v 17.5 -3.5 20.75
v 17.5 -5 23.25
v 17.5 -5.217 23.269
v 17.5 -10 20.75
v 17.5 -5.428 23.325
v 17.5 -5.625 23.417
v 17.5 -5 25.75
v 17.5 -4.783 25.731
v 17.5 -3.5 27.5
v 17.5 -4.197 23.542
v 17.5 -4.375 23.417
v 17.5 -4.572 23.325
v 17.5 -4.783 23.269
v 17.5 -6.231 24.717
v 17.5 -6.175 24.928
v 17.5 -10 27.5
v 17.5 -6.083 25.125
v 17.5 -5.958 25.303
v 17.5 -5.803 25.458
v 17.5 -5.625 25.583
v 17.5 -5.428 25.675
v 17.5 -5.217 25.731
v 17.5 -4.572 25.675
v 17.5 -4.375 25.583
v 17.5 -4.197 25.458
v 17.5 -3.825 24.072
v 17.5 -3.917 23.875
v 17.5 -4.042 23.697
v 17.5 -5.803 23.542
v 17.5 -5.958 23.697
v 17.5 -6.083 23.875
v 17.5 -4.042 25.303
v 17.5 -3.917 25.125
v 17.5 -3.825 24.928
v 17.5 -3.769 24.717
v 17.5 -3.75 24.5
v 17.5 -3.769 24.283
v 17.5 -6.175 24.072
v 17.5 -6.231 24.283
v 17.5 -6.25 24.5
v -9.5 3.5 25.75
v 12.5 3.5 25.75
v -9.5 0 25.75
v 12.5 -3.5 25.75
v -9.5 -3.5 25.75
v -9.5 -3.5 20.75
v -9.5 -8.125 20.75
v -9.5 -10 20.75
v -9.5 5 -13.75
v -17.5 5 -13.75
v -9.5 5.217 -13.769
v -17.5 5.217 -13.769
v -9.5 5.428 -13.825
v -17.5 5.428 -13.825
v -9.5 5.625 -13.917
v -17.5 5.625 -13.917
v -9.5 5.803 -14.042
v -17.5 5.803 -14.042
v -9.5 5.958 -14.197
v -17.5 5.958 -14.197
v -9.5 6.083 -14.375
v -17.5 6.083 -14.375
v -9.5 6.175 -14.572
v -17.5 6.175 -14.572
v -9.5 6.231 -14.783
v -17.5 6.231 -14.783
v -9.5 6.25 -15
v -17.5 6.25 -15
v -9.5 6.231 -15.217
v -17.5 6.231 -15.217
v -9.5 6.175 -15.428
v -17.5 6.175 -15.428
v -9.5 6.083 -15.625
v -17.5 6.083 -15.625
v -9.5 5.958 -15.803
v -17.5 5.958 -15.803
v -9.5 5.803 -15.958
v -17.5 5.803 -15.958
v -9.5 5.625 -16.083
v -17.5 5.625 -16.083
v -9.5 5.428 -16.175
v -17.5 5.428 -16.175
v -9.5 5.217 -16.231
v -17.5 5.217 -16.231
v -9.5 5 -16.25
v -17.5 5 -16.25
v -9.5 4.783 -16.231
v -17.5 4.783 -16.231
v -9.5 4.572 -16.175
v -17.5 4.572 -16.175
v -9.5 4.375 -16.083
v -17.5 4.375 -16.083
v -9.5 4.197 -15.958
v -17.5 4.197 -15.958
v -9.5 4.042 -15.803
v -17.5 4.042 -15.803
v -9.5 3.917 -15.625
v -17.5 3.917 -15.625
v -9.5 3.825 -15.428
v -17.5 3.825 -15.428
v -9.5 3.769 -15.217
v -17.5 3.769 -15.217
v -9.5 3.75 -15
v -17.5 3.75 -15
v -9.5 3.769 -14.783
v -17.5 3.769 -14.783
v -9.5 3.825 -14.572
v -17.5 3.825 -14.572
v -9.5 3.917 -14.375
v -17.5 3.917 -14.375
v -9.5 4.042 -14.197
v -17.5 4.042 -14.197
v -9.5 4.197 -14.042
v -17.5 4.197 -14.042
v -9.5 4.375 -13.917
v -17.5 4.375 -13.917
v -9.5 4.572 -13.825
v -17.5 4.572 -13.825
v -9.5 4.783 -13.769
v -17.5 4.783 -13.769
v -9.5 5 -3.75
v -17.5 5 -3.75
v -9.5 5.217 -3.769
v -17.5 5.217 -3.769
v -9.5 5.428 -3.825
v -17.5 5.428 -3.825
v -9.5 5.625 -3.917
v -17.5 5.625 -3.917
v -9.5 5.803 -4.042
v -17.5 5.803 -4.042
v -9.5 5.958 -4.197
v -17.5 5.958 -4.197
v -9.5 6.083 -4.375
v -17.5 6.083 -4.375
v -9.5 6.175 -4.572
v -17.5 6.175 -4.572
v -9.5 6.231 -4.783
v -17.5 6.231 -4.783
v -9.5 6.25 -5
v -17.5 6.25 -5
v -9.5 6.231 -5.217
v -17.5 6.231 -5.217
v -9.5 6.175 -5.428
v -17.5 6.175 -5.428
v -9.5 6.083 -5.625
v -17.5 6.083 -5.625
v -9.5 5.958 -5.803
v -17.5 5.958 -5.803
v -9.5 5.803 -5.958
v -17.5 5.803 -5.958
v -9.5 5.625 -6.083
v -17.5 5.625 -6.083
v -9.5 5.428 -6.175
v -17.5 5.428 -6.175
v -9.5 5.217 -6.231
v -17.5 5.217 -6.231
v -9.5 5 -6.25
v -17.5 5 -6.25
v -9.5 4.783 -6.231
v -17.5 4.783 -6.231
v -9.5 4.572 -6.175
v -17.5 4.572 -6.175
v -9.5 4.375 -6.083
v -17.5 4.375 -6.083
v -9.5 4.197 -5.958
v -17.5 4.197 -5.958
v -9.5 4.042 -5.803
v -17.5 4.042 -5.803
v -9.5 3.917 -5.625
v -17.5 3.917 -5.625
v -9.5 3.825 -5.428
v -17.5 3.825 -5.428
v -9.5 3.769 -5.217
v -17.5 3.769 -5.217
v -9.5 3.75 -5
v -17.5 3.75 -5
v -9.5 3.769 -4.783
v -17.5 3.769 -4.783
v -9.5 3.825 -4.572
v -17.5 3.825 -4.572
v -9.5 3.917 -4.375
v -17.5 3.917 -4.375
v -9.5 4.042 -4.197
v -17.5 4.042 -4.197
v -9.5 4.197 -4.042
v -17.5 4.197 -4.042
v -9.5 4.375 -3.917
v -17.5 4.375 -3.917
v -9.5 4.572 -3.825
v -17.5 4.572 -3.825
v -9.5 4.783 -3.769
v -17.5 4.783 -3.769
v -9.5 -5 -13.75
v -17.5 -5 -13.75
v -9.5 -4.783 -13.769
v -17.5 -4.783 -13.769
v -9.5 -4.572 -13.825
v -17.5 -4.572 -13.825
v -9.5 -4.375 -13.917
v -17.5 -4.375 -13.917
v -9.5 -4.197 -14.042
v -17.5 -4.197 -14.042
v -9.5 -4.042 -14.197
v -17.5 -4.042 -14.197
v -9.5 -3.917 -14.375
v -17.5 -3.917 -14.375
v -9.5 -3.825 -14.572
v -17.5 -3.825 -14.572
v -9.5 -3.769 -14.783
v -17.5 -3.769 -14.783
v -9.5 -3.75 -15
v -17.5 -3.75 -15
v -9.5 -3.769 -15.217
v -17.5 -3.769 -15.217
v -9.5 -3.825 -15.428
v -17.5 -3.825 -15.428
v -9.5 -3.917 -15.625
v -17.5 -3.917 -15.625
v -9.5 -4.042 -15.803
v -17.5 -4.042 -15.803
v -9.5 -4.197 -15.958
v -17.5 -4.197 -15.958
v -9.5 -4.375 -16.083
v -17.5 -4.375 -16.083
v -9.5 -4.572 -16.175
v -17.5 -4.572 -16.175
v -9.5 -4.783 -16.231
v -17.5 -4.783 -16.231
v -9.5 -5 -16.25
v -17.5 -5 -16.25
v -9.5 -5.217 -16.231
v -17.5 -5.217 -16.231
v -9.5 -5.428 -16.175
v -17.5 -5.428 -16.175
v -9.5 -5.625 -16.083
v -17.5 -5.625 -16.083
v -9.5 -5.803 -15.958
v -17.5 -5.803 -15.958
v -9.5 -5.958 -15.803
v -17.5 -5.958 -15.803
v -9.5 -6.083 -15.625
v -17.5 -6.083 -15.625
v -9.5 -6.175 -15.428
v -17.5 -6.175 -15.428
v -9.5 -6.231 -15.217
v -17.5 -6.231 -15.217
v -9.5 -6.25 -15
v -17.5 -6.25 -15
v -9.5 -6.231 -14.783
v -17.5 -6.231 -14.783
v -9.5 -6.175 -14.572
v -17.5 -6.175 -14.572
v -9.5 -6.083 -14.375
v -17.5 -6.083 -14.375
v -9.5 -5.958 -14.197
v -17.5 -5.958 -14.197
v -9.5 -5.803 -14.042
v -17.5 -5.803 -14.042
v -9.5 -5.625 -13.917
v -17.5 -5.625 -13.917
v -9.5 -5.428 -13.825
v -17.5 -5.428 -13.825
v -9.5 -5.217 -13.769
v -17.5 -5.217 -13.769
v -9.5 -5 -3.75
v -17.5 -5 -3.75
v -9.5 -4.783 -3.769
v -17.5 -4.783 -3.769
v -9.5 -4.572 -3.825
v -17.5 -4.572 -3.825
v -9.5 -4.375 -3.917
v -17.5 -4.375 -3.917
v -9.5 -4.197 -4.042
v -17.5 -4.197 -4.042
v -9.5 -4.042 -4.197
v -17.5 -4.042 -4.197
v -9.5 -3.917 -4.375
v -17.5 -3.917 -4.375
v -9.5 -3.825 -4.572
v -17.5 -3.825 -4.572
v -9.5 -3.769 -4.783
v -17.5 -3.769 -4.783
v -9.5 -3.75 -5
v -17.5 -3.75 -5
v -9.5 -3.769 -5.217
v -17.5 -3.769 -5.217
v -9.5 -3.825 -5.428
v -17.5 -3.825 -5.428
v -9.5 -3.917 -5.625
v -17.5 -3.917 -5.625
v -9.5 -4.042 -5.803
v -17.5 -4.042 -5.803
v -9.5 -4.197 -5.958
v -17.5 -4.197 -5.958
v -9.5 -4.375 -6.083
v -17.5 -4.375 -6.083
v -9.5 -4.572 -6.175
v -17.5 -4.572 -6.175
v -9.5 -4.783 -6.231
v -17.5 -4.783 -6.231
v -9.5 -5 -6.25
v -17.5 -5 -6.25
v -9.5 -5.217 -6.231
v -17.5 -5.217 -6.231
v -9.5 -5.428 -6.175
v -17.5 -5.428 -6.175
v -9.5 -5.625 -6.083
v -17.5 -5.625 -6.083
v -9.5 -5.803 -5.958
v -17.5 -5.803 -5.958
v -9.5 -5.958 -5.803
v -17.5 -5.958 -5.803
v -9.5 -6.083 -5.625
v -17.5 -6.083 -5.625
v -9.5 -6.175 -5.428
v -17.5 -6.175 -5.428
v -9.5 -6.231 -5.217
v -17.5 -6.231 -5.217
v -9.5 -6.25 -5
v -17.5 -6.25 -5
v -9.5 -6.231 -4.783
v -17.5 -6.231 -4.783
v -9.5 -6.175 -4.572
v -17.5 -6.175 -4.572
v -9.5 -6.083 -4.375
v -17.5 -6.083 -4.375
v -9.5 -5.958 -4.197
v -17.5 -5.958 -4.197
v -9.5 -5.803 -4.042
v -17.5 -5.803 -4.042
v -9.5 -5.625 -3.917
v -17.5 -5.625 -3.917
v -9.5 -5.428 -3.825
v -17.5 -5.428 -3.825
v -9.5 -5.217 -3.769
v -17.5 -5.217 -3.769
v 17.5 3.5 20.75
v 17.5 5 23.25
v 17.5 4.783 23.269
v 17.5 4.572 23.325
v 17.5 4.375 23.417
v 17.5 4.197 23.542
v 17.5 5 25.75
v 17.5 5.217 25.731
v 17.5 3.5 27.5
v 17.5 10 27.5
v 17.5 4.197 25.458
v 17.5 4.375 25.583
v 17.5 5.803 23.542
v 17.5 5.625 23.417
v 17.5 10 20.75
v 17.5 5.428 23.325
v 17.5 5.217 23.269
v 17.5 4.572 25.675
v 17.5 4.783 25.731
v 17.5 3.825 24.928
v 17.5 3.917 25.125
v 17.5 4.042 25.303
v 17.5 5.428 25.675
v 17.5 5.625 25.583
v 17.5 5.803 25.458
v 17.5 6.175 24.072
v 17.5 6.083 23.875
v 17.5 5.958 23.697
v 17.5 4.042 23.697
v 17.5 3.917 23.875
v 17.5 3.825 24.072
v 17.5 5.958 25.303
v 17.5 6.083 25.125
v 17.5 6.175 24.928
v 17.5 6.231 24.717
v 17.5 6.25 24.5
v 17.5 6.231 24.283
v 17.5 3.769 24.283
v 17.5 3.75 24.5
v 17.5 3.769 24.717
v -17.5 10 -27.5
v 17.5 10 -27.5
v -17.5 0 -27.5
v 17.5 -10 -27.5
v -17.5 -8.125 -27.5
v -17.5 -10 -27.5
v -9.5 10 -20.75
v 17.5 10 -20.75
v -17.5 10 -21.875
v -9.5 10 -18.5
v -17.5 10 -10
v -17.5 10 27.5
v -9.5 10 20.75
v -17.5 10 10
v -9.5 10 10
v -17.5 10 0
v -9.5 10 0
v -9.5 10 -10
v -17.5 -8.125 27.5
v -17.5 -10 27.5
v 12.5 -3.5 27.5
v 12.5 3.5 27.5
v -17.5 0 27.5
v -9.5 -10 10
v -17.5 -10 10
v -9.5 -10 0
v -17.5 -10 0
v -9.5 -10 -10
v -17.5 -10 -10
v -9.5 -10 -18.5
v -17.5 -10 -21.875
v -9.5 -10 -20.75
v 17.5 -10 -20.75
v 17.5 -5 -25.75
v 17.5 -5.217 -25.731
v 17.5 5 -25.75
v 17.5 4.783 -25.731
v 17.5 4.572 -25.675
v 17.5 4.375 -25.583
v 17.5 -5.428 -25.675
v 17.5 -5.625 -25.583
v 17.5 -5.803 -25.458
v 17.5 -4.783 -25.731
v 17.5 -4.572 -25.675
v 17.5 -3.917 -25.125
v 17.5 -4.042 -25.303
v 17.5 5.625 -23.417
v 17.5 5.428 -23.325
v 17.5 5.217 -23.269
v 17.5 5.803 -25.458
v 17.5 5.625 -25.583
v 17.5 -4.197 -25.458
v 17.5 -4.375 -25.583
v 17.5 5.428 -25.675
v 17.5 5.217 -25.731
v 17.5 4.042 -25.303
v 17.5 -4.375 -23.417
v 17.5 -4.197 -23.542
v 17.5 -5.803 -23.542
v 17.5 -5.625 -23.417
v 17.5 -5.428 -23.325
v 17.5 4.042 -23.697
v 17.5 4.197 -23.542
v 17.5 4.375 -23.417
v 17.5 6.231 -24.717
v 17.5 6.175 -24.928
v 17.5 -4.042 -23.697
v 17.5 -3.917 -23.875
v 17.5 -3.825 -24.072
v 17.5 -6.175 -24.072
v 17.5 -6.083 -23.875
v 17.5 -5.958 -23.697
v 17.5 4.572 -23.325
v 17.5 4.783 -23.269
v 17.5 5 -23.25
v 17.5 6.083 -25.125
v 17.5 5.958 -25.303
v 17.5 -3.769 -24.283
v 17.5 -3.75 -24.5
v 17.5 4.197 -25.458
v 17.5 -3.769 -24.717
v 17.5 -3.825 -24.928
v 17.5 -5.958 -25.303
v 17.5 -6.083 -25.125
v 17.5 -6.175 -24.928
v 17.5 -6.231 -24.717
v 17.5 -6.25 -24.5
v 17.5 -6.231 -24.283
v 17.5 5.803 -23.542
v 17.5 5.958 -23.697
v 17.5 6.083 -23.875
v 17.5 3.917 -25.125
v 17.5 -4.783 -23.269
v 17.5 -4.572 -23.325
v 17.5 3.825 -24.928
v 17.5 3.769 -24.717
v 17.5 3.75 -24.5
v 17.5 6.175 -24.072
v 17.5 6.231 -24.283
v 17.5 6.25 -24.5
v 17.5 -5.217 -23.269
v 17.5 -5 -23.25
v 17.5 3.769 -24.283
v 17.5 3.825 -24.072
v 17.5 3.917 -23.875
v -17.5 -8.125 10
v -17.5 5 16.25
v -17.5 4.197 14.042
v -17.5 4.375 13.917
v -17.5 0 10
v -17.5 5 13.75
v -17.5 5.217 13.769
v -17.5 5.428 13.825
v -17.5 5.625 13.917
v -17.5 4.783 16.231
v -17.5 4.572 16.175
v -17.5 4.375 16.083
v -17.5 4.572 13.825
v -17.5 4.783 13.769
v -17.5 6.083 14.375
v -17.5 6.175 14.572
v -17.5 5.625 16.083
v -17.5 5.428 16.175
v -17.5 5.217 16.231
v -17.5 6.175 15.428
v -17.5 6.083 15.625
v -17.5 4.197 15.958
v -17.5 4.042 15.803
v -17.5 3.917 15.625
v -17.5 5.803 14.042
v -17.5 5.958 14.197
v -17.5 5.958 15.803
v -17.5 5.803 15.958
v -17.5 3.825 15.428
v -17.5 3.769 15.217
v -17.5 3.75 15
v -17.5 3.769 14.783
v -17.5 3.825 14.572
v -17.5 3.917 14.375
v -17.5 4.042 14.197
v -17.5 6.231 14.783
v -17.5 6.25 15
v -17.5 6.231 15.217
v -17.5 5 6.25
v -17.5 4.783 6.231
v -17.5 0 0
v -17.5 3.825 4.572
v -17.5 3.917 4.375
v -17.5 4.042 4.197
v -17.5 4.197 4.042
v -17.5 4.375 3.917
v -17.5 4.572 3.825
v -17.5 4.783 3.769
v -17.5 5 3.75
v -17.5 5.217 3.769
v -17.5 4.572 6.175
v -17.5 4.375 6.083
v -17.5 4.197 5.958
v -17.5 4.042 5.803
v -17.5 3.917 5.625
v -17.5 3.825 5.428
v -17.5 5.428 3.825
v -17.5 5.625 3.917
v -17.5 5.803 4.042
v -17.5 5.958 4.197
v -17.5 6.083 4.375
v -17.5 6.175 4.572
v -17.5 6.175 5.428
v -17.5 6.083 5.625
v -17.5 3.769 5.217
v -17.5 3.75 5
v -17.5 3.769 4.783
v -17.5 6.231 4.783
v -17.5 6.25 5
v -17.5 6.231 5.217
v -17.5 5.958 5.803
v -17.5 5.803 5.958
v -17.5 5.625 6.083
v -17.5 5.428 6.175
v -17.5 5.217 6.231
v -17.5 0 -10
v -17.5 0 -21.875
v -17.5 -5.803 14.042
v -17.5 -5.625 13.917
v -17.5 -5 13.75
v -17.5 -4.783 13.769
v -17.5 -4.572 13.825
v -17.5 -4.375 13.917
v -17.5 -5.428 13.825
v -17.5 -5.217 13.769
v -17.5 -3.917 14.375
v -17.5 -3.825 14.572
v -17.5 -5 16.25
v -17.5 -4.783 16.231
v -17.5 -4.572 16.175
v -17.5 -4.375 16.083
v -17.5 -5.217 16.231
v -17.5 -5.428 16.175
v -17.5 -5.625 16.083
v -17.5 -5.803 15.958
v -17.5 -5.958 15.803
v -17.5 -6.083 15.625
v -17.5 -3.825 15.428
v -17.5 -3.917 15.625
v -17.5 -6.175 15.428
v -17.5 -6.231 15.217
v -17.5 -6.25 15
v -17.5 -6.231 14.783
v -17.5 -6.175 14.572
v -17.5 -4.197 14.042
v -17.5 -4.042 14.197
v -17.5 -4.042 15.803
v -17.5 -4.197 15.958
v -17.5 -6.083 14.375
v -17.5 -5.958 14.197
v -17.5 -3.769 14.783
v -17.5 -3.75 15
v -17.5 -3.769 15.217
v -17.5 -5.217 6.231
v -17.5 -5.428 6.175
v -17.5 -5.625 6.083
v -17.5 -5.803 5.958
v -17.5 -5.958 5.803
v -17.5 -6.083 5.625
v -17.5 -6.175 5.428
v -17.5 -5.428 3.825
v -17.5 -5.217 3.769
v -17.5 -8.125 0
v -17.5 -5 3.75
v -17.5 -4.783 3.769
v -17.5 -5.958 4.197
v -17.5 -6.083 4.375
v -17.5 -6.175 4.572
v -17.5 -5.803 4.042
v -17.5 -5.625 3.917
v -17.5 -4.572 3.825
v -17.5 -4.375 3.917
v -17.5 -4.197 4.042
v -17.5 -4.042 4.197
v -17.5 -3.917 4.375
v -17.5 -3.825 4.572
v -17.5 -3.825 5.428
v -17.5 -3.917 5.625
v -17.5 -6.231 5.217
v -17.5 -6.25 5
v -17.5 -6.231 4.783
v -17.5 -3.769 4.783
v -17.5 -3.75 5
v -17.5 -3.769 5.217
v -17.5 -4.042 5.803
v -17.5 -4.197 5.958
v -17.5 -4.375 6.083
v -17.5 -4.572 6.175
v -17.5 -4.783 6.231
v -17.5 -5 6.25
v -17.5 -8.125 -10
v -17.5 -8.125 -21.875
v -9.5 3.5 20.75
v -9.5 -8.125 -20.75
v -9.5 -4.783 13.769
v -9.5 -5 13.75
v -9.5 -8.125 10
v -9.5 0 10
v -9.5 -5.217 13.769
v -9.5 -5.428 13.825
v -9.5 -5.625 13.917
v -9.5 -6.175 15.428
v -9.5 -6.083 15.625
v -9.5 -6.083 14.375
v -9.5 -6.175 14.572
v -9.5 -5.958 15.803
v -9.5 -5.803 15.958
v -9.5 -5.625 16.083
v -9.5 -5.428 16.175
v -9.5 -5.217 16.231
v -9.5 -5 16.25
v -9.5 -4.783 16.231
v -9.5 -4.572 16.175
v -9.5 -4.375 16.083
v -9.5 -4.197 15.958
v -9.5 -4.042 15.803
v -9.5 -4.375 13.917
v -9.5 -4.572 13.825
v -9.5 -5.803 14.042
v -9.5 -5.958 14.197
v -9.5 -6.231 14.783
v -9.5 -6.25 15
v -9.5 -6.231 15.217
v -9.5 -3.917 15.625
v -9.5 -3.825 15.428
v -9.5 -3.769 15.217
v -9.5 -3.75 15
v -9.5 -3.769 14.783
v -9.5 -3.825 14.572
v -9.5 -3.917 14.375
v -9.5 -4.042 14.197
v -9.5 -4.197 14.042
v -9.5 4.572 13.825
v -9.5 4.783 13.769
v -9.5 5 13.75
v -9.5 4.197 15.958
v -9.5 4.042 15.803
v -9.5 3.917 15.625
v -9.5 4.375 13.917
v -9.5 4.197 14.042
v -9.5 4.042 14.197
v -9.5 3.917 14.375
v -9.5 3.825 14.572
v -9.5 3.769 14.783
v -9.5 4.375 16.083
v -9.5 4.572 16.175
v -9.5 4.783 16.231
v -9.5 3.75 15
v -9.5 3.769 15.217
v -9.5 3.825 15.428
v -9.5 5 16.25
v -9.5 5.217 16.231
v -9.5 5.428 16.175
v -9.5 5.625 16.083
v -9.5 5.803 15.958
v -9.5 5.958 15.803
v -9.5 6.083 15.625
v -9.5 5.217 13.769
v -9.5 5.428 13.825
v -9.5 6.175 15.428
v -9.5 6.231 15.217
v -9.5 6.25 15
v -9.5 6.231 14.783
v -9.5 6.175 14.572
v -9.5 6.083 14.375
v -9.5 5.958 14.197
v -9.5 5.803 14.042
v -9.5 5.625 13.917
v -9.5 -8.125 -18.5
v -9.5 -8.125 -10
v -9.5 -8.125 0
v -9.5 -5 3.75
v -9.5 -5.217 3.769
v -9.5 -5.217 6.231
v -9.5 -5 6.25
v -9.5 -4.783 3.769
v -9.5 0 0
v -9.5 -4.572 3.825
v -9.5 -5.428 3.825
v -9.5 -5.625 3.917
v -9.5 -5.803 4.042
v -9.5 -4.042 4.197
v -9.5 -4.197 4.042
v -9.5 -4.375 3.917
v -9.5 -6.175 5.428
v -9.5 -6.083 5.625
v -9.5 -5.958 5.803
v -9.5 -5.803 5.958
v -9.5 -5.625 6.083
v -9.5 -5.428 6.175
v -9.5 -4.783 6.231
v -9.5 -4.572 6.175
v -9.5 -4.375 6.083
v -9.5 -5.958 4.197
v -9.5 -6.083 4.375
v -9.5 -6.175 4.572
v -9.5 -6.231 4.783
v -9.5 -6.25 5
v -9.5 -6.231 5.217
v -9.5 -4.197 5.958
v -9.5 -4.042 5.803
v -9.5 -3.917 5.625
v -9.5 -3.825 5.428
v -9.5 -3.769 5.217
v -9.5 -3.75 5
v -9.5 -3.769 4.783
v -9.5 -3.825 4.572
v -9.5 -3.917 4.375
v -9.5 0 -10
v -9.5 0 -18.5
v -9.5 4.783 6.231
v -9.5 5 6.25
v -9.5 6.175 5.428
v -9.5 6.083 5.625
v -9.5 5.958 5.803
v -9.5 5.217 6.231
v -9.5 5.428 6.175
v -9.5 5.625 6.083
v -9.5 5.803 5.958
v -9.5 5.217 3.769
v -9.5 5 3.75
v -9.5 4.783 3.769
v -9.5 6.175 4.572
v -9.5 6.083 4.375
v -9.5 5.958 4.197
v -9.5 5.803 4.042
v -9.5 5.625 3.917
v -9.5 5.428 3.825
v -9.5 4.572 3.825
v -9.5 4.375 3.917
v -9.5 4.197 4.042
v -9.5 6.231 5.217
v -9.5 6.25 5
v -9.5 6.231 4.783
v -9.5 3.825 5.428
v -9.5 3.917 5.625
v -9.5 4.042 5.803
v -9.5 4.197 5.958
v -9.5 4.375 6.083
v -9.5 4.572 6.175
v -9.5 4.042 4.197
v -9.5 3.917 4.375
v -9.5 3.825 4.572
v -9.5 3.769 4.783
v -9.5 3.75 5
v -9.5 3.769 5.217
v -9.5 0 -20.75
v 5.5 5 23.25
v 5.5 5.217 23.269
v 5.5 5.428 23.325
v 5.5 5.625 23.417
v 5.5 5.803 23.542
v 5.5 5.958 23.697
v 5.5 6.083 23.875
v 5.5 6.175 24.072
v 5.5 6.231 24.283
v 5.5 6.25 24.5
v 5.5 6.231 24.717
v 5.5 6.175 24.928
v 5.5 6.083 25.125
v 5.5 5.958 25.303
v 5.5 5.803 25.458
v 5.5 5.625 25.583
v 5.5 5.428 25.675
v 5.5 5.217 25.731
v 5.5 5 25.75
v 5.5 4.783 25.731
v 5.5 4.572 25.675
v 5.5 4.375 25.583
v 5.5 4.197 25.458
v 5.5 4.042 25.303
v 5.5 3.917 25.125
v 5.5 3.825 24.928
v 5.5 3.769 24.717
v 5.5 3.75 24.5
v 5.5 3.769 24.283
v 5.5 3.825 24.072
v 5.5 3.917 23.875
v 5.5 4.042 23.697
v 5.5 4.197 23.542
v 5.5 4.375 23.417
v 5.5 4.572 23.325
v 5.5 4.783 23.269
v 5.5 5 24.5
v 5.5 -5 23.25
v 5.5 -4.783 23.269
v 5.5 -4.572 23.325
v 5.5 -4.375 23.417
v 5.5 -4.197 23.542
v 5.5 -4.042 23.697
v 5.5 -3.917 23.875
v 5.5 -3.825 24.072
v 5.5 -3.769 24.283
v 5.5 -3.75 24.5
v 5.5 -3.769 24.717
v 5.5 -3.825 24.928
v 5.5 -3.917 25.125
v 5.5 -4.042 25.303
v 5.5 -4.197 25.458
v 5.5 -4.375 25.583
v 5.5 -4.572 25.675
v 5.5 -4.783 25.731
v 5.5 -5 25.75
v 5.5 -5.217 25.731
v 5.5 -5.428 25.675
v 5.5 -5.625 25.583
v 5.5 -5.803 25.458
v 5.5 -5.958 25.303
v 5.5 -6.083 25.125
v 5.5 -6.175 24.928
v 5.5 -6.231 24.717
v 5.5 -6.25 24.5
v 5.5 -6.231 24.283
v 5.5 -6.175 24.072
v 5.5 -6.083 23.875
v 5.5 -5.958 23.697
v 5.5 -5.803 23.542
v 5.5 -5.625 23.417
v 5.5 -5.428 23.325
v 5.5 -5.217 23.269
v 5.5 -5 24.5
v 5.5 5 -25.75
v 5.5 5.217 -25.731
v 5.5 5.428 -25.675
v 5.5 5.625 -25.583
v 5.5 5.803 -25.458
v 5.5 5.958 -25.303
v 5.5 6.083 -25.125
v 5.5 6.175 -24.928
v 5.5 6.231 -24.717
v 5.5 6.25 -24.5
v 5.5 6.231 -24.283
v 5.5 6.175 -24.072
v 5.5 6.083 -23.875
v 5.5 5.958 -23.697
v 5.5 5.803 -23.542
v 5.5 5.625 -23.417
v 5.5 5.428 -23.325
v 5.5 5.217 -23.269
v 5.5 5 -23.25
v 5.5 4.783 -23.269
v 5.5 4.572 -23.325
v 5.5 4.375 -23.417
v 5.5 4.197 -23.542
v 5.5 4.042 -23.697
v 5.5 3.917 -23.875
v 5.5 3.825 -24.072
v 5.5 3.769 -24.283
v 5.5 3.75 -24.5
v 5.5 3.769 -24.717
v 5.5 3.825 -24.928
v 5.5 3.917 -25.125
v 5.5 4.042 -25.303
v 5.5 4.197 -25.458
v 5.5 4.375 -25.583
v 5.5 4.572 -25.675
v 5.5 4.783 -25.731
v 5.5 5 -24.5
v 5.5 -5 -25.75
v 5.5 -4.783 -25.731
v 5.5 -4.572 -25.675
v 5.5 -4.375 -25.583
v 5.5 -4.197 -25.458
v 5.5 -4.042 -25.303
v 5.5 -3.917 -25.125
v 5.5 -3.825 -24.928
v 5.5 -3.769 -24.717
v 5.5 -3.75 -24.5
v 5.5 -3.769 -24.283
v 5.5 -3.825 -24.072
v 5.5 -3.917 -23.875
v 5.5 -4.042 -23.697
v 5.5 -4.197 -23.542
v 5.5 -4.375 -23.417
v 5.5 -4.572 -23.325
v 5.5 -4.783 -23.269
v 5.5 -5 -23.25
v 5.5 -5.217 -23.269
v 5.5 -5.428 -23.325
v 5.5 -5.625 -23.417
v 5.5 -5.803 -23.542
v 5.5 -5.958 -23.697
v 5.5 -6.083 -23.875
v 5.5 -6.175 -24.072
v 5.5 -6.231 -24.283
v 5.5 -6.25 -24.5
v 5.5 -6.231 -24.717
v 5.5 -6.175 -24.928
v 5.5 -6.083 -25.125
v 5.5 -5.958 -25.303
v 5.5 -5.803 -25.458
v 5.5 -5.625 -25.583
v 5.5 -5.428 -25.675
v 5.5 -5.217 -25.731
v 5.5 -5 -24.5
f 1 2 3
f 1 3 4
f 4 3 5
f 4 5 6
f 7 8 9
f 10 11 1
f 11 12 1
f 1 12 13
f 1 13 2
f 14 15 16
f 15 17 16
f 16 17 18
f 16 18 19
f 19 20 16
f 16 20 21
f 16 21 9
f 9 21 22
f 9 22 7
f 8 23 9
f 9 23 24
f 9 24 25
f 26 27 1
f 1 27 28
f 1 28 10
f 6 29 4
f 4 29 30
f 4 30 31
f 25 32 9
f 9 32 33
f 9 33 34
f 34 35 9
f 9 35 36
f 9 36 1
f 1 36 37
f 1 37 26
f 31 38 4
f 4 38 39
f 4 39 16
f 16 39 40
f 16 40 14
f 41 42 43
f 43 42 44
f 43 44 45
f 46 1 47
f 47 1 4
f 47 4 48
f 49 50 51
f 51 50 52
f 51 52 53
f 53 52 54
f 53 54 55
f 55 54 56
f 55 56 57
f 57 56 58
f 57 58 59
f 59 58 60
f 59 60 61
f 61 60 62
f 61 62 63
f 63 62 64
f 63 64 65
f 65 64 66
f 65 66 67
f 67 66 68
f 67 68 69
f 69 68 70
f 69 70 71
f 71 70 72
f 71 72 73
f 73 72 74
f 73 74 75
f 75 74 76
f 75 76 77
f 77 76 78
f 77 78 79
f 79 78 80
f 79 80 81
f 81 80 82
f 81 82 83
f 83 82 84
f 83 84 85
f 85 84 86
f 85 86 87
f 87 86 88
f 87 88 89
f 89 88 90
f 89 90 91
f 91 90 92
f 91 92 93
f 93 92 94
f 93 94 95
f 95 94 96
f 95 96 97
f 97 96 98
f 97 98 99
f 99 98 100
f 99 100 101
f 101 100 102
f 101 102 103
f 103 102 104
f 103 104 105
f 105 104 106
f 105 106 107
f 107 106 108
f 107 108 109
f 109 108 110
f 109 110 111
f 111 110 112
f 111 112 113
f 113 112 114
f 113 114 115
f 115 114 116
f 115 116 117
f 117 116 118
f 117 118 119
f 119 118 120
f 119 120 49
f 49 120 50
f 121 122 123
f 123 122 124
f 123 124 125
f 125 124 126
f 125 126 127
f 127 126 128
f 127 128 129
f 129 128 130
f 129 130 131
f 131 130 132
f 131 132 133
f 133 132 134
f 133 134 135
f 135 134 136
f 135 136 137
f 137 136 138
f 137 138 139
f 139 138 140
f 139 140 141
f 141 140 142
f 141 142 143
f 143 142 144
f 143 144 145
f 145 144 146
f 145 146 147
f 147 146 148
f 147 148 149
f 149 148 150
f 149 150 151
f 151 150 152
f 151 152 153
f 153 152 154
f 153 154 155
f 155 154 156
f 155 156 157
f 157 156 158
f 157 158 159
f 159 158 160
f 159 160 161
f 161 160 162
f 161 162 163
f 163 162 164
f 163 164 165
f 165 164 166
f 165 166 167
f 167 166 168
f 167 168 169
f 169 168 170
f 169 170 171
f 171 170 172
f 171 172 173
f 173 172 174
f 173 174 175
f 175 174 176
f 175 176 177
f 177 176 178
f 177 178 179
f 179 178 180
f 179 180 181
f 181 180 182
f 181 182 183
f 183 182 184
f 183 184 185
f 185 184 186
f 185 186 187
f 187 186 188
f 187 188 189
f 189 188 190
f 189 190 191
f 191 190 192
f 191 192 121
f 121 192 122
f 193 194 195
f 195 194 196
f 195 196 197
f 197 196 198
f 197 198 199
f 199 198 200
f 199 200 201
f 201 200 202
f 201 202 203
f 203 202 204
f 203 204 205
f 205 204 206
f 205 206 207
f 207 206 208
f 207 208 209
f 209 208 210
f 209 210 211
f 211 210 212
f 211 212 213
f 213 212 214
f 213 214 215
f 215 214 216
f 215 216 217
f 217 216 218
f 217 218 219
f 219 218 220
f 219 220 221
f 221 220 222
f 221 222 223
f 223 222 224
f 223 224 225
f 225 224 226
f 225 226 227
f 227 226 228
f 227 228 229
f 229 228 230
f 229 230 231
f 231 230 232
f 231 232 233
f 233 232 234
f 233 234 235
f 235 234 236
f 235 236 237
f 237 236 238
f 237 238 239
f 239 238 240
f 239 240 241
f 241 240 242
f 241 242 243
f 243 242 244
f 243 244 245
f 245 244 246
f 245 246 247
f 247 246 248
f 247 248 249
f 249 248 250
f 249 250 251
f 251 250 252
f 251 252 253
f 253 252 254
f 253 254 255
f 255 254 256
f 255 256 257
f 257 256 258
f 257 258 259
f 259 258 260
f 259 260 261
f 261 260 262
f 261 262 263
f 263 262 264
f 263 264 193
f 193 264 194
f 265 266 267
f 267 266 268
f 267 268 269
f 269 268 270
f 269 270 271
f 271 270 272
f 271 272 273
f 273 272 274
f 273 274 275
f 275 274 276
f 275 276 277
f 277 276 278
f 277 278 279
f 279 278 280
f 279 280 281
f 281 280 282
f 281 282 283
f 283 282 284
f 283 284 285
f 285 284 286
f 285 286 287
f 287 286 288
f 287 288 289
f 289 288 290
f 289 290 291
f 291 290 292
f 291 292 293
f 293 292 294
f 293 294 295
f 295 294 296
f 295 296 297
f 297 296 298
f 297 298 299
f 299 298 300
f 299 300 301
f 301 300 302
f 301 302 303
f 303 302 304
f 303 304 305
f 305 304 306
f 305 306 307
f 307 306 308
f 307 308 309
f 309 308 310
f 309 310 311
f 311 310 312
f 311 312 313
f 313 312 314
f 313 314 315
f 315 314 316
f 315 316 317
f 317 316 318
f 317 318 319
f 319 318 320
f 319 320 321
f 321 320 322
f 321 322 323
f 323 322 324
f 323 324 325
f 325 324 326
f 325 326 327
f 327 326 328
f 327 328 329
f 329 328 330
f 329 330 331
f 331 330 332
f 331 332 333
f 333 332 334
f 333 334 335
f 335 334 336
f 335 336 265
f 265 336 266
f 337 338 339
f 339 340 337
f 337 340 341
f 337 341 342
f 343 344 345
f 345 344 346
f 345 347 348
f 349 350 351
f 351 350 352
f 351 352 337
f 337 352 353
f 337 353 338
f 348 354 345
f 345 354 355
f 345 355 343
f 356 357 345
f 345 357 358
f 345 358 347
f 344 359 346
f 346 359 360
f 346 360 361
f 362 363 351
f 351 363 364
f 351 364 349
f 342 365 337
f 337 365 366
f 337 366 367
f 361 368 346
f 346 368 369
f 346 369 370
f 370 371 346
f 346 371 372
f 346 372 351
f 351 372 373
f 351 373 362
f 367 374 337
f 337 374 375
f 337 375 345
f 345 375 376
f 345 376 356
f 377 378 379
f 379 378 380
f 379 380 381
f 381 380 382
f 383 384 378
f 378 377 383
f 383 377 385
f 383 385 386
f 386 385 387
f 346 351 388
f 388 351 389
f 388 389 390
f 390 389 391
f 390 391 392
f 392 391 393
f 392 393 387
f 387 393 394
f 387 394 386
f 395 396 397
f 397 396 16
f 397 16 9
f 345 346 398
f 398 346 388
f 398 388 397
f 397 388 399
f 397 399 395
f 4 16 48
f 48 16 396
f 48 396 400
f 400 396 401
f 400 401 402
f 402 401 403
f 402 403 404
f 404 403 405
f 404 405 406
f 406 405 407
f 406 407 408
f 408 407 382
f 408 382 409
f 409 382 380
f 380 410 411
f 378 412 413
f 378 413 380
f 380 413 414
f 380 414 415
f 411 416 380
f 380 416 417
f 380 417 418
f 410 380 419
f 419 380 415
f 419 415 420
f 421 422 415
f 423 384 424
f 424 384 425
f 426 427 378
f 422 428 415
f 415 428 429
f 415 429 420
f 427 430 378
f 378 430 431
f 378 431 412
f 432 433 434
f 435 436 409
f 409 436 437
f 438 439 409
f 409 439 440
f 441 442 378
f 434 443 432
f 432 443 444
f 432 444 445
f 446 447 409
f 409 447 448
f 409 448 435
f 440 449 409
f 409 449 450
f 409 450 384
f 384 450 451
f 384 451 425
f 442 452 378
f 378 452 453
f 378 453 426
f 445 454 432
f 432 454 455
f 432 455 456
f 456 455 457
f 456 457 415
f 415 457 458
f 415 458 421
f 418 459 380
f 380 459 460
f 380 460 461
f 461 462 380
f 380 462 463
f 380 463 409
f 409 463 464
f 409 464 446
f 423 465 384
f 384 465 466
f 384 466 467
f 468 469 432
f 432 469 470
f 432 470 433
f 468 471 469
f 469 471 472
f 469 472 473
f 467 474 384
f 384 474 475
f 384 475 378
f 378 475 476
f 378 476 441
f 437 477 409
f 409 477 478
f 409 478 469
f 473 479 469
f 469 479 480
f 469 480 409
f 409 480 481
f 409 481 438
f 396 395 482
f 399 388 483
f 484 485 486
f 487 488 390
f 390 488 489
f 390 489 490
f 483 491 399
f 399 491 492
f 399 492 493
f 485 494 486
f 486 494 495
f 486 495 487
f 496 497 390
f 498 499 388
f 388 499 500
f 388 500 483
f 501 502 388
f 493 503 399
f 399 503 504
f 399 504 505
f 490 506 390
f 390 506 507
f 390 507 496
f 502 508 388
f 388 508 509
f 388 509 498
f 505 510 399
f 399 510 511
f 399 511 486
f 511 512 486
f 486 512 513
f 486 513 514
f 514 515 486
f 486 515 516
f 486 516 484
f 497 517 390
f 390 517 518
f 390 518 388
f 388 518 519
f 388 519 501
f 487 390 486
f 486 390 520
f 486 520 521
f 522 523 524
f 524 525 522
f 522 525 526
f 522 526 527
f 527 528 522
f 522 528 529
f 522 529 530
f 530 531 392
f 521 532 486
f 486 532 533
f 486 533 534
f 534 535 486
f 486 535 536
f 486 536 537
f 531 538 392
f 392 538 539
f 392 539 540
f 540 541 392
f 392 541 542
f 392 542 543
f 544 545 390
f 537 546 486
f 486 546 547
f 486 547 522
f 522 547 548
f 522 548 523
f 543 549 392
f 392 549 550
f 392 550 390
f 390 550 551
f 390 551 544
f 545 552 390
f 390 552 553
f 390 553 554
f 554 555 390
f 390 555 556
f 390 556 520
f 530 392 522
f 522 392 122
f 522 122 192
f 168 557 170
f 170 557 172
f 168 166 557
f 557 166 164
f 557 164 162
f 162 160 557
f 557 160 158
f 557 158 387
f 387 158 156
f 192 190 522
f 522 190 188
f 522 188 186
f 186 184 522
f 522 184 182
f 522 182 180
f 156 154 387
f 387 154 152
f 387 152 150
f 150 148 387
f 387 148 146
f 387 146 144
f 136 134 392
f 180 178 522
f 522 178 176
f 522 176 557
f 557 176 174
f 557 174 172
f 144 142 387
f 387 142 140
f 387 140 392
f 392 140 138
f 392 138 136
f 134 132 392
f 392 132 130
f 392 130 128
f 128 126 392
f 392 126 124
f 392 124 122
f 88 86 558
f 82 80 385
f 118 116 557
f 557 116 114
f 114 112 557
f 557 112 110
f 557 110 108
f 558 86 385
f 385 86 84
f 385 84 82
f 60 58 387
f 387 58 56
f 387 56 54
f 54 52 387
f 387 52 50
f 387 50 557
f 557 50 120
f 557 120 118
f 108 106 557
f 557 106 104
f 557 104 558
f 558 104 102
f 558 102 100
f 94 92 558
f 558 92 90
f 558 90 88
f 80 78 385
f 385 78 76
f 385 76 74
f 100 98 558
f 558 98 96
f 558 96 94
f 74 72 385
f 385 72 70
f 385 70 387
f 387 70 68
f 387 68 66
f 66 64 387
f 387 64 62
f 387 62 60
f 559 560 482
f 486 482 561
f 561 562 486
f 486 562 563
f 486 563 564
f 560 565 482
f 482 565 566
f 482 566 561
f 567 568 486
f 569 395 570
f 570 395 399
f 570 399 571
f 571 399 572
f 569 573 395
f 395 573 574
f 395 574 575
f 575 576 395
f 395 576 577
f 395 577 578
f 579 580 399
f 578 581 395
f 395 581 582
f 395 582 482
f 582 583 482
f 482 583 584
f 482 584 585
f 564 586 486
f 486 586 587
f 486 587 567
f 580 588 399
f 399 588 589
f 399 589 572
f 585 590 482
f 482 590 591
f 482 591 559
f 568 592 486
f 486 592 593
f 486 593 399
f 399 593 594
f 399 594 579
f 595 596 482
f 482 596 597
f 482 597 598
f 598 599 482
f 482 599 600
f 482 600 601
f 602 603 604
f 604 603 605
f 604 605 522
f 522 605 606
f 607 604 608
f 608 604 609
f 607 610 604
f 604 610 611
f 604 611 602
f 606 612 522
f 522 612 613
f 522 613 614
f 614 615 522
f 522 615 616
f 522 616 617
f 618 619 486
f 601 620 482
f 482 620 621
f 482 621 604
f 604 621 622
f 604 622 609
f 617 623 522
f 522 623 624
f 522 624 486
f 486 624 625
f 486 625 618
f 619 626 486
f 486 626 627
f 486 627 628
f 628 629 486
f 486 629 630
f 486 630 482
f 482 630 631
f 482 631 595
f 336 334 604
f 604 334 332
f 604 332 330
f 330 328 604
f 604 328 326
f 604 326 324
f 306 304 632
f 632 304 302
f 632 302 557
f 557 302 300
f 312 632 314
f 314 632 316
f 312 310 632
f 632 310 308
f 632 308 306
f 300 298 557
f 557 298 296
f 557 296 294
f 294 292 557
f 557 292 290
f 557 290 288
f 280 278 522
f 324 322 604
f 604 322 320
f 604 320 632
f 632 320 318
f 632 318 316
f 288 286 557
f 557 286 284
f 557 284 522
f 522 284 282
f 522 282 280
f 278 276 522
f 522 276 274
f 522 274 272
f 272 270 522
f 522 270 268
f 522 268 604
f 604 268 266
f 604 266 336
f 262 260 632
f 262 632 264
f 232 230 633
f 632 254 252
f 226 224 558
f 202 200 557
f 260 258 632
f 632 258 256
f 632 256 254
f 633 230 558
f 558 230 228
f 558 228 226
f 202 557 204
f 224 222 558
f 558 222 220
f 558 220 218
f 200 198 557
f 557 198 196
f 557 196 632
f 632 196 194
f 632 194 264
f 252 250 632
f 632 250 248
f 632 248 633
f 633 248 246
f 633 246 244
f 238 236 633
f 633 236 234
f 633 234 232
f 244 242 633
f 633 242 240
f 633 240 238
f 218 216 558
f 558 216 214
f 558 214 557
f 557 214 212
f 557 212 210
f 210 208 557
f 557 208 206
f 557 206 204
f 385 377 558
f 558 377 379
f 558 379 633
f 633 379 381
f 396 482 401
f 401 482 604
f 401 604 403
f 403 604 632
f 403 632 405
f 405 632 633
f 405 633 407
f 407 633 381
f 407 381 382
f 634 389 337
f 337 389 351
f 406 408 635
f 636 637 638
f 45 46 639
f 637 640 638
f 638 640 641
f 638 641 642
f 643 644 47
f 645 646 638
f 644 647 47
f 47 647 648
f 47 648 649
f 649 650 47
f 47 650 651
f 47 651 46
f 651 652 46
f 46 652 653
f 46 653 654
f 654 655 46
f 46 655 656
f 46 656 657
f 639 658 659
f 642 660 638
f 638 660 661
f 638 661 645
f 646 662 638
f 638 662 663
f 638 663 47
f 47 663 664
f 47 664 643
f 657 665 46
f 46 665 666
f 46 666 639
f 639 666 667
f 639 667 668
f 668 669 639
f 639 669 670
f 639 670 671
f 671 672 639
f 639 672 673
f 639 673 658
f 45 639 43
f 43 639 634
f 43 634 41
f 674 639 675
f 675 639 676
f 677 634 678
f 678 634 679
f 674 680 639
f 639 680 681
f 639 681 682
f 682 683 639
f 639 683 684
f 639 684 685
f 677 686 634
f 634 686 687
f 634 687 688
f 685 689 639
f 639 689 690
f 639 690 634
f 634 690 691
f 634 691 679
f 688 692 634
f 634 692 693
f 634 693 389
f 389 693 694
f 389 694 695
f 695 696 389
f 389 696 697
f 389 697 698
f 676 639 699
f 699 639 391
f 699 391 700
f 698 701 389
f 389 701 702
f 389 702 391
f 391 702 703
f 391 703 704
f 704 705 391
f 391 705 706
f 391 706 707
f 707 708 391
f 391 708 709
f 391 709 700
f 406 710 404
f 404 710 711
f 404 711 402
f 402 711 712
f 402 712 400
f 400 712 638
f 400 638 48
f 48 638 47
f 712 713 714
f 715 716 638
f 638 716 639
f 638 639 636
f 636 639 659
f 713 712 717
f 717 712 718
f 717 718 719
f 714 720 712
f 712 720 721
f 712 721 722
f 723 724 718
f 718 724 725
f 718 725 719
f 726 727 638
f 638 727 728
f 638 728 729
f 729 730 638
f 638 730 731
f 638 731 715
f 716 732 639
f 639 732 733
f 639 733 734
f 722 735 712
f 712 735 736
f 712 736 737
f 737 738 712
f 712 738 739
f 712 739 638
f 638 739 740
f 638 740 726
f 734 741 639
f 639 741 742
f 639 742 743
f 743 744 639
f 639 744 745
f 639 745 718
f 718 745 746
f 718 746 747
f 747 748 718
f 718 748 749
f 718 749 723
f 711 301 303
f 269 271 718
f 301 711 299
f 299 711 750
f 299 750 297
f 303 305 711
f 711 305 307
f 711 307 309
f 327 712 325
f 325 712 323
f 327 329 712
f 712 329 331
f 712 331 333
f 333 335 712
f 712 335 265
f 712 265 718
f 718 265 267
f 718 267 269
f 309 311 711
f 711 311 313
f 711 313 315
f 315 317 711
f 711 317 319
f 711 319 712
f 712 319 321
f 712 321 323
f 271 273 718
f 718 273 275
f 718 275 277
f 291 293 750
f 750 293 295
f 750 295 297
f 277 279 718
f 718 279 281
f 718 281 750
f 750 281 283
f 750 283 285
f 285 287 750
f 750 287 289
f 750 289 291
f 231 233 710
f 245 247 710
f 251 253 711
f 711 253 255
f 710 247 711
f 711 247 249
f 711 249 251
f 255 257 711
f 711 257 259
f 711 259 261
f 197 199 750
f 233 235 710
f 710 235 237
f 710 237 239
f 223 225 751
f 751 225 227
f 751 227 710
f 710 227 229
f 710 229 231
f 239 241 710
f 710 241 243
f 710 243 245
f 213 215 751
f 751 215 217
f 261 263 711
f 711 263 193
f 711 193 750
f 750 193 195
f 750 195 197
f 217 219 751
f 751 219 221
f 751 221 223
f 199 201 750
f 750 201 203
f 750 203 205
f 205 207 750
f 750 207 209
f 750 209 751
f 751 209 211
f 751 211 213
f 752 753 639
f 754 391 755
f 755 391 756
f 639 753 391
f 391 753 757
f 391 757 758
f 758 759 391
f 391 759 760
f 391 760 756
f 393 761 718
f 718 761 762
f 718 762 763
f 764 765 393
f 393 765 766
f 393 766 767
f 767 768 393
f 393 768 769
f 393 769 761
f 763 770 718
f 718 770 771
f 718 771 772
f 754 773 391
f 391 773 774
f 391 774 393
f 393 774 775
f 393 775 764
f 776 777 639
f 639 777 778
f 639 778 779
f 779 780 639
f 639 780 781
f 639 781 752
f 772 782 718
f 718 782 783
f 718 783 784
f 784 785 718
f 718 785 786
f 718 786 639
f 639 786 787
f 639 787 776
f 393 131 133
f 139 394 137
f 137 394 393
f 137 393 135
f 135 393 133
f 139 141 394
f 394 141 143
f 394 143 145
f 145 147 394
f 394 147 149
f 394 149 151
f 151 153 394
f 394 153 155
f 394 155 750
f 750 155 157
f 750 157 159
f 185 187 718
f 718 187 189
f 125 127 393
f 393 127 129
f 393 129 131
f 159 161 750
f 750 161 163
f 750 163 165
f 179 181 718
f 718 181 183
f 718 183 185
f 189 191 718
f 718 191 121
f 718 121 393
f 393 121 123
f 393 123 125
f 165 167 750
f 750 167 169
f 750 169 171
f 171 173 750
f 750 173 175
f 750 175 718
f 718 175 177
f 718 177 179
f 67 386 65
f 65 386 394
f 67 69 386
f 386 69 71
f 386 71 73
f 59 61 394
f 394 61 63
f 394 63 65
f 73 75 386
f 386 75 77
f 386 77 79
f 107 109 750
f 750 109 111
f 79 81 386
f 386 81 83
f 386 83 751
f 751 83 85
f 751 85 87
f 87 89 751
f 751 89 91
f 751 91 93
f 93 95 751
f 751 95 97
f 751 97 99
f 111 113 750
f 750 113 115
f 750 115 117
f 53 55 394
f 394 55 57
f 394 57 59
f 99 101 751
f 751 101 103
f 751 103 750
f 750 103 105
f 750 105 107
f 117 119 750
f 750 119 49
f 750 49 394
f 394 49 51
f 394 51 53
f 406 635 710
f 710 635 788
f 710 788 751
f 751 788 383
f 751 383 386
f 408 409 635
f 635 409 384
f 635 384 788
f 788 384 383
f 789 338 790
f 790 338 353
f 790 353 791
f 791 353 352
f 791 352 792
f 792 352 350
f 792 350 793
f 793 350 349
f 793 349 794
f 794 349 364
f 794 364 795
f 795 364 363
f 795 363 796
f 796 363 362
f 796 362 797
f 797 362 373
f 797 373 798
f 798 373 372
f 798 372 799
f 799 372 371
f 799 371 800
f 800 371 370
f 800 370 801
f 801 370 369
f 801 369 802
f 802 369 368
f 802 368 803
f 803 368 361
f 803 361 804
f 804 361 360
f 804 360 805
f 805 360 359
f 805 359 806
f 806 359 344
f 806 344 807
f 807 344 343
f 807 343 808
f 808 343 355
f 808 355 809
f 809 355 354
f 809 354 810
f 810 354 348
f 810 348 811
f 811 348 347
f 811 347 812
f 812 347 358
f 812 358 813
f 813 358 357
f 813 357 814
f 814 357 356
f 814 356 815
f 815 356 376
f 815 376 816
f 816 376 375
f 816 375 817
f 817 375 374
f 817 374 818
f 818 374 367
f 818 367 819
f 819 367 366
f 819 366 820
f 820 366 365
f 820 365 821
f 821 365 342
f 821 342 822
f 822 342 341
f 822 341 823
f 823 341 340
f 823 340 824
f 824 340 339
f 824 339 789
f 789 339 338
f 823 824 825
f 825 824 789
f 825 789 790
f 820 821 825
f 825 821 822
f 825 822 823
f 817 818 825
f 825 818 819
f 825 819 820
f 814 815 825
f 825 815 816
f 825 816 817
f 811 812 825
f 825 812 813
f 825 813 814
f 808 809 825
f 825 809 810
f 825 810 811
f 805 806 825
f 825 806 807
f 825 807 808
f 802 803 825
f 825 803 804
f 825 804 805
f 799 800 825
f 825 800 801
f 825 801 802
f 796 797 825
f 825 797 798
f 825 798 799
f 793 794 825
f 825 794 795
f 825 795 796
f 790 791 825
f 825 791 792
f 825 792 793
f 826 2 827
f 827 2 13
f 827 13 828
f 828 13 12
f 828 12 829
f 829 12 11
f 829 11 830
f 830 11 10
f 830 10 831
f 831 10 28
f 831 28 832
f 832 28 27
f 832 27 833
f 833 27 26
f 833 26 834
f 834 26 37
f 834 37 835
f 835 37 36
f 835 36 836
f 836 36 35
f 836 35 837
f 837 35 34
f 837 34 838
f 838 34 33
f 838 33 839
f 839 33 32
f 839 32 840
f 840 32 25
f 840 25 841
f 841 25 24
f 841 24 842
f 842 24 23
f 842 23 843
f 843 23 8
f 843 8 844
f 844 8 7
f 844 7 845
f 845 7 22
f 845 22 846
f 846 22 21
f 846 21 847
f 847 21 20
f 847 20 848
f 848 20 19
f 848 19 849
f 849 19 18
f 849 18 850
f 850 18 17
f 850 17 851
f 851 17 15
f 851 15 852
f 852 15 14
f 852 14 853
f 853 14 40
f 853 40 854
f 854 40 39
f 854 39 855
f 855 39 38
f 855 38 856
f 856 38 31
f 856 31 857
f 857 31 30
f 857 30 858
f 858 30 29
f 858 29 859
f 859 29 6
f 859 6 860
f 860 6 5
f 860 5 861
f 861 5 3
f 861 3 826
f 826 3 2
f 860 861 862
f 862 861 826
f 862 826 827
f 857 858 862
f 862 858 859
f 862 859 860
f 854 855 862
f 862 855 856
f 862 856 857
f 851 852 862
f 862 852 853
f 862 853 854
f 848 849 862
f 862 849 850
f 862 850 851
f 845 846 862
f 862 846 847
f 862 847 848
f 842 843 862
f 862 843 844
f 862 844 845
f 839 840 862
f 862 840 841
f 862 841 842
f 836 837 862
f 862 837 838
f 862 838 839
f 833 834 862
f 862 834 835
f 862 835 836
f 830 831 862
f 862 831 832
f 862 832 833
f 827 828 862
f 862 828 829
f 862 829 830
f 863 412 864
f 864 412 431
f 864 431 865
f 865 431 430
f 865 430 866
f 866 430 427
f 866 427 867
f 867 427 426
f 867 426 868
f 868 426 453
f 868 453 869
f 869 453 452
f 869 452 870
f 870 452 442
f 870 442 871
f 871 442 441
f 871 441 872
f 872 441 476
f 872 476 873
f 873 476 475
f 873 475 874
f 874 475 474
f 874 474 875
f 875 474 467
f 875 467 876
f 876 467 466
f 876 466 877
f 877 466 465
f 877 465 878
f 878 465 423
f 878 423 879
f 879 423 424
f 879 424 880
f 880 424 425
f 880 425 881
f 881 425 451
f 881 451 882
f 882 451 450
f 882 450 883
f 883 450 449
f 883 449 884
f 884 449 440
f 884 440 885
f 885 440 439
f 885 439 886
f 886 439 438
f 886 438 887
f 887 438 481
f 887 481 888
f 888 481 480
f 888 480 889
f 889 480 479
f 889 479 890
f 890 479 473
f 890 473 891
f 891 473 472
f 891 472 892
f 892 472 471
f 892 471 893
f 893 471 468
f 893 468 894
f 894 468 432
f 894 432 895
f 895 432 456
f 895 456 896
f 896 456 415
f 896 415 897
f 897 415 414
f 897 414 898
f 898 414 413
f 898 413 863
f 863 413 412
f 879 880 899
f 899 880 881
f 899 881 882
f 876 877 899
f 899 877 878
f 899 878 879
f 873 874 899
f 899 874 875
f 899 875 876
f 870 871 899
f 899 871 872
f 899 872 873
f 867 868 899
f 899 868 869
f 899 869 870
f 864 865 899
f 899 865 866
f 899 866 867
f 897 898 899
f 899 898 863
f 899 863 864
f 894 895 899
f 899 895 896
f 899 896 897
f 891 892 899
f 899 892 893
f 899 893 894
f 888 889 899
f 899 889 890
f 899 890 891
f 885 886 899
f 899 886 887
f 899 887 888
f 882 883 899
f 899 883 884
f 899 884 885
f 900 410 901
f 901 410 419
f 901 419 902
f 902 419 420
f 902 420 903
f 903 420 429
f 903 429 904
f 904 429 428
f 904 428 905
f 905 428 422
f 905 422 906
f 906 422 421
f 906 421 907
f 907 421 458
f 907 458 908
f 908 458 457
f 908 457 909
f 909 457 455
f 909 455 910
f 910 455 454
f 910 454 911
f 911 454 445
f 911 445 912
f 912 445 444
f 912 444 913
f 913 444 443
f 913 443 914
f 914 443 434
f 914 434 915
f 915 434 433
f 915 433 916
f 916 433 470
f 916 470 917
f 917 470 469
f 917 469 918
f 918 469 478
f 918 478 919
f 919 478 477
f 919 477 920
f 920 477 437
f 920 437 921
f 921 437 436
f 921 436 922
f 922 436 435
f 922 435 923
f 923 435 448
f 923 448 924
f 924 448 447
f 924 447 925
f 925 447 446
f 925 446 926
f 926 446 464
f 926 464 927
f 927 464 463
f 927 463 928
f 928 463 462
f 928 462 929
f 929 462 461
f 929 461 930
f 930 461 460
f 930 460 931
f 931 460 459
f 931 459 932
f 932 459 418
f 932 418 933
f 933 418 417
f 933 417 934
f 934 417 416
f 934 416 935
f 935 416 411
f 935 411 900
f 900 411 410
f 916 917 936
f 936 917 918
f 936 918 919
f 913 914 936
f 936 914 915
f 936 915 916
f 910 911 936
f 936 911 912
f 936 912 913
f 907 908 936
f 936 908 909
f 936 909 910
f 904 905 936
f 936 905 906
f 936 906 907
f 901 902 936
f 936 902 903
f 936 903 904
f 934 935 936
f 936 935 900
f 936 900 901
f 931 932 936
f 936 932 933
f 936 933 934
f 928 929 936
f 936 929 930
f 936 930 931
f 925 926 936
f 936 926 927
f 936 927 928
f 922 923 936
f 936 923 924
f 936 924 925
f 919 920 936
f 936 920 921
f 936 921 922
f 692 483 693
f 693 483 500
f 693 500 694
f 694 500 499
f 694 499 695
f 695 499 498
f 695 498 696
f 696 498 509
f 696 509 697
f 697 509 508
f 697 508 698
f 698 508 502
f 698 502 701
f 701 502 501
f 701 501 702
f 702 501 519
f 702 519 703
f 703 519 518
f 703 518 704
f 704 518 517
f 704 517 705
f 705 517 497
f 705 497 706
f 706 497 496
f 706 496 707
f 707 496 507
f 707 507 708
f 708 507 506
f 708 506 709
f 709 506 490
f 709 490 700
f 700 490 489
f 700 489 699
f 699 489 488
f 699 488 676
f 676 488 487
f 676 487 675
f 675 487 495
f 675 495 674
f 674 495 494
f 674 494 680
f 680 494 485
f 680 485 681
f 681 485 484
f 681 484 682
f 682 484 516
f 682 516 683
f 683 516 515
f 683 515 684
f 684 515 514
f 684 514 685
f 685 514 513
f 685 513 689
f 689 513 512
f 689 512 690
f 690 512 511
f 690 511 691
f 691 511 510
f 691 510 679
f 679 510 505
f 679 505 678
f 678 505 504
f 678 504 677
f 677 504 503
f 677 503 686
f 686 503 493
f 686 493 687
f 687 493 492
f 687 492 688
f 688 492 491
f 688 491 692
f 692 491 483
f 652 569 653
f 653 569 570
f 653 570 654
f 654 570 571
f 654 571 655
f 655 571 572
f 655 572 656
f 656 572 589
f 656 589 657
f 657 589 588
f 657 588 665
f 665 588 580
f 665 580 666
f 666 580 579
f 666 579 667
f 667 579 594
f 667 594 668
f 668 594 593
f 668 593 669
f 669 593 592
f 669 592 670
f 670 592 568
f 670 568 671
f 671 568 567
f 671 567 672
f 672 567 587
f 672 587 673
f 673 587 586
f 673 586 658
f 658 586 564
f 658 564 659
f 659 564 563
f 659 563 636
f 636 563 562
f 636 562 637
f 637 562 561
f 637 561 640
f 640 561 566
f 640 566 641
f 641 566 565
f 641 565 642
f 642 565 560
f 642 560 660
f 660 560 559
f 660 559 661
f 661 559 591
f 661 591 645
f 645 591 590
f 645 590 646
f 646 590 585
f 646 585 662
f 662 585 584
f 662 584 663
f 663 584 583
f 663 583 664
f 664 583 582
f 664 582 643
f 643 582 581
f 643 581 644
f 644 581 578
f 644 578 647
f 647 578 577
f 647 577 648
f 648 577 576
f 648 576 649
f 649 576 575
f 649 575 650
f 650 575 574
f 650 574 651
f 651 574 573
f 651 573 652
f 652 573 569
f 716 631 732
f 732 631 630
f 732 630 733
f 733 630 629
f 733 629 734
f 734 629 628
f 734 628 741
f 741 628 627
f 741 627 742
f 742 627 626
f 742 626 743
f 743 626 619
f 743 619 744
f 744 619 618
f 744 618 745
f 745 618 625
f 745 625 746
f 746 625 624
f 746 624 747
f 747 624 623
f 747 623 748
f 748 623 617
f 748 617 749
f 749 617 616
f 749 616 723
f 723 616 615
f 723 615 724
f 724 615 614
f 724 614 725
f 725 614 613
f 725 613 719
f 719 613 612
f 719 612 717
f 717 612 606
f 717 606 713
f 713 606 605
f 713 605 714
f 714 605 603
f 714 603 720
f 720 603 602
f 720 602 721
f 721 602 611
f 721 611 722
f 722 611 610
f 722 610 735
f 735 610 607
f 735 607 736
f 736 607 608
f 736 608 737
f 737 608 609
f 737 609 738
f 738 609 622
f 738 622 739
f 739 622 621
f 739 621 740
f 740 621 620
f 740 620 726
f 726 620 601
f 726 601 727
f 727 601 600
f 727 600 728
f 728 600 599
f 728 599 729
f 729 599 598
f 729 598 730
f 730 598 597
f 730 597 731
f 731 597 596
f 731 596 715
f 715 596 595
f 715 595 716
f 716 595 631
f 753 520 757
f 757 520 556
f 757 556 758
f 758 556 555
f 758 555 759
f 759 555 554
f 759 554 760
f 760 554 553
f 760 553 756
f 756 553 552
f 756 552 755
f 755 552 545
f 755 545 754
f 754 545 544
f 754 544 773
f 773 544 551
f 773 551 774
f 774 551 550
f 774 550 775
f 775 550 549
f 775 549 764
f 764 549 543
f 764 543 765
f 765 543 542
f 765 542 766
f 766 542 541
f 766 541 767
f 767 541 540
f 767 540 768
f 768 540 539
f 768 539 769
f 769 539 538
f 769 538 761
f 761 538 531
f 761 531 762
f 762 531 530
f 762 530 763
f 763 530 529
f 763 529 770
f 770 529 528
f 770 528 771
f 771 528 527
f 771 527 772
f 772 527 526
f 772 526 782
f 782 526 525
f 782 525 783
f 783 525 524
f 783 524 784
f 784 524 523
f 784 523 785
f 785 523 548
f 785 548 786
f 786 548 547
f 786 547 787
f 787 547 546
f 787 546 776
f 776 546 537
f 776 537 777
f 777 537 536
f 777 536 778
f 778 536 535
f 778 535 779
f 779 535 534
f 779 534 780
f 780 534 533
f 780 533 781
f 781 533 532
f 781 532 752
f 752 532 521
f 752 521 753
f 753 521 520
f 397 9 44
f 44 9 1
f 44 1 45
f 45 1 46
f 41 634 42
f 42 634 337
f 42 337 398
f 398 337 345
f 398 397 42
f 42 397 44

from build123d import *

# Parameters (mm, degrees)
SKETCH1_W                 = 55
SKETCH1_H                 = 20
MAIN_DEPTH                = 17.5
SKETCH3_W                 = 27
SKETCH3_H                 = 41.5
CENTRALHOLEFORSERVO_DEPTH = 21
SKETCH4_R                 = 1.25
FIXHOLESERVO_DEPTH        = 12
SKETCH5_R                 = 1.25
BOTTOMFIXHOLE_DEPTH       = 12
LPATTERN1_COUNT           = 4
LPATTERN1_PITCH           = 10
SKETCH6_W                 = 5
SKETCH6_H                 = 7
CUT_EXTRUDE4_DEPTH        = 27
SKETCH7_W                 = 1.75
SKETCH7_H                 = 7
CUT_EXTRUDE5_DEPTH        = 5


with BuildPart() as part:
    # Sketch1 → Main (new body, symmetric)
    with BuildSketch(Plane(origin=(0, 0, 0), x_dir=(0, 0, -1), z_dir=(1, 0, 0))):
        Rectangle(SKETCH1_W, SKETCH1_H)
    extrude(amount=MAIN_DEPTH, both=True)

    # Sketch3 → CentralHoleForServo (cut, through all)
    with BuildSketch(Plane(origin=(0, 10, 0), x_dir=(1, 0, 0), z_dir=(0, 1, 0))):
        with Locations((4, 0)):
            Rectangle(SKETCH3_W, SKETCH3_H)
    extrude(amount=-CENTRALHOLEFORSERVO_DEPTH, mode=Mode.SUBTRACT)

    # Sketch4 → FixHoleServo (cut)
    with BuildSketch(Plane(origin=(17.5, 0, 0), x_dir=(0, 0, -1), z_dir=(1, 0, 0))):
        with Locations((-24.5, 5)):
            Circle(SKETCH4_R)
        with Locations((-24.5, -5)):
            Circle(SKETCH4_R)
    fixholeservo = extrude(amount=-FIXHOLESERVO_DEPTH, mode=Mode.SUBTRACT)

    # FixHoleServoMirror: FixHoleServo across plane
    add(fixholeservo.mirror(Plane.XY), mode=Mode.SUBTRACT)

    # Sketch5 → BottomFixHole (cut)
    with BuildSketch(Plane.ZY.offset(17.5)):
        with Locations((15, 5)):
            Circle(SKETCH5_R)
        with Locations((15, -5)):
            Circle(SKETCH5_R)
    bottomfixhole = extrude(amount=-BOTTOMFIXHOLE_DEPTH, mode=Mode.SUBTRACT)

    # LPattern1: BottomFixHole ×4
    with Locations(*[(0, 0, -i * LPATTERN1_PITCH) for i in range(1, LPATTERN1_COUNT)]):
        add(bottomfixhole, mode=Mode.SUBTRACT)

    # Sketch6 → Cut-Extrude4 (cut)
    with BuildSketch(Plane(origin=(17.5, 0, 0), x_dir=(0, 0, -1), z_dir=(1, 0, 0))):
        with Locations((-23.25, 0)):
            Rectangle(SKETCH6_W, SKETCH6_H)
    extrude(amount=-CUT_EXTRUDE4_DEPTH, mode=Mode.SUBTRACT)

    # Sketch7 → Cut-Extrude5 (cut)
    with BuildSketch(Plane(origin=(17.5, 0, 0), x_dir=(0, 0, -1), z_dir=(1, 0, 0))):
        with Locations((-26.625, 0)):
            Rectangle(SKETCH7_W, SKETCH7_H)
    extrude(amount=-CUT_EXTRUDE5_DEPTH, mode=Mode.SUBTRACT)


solid = part.part
